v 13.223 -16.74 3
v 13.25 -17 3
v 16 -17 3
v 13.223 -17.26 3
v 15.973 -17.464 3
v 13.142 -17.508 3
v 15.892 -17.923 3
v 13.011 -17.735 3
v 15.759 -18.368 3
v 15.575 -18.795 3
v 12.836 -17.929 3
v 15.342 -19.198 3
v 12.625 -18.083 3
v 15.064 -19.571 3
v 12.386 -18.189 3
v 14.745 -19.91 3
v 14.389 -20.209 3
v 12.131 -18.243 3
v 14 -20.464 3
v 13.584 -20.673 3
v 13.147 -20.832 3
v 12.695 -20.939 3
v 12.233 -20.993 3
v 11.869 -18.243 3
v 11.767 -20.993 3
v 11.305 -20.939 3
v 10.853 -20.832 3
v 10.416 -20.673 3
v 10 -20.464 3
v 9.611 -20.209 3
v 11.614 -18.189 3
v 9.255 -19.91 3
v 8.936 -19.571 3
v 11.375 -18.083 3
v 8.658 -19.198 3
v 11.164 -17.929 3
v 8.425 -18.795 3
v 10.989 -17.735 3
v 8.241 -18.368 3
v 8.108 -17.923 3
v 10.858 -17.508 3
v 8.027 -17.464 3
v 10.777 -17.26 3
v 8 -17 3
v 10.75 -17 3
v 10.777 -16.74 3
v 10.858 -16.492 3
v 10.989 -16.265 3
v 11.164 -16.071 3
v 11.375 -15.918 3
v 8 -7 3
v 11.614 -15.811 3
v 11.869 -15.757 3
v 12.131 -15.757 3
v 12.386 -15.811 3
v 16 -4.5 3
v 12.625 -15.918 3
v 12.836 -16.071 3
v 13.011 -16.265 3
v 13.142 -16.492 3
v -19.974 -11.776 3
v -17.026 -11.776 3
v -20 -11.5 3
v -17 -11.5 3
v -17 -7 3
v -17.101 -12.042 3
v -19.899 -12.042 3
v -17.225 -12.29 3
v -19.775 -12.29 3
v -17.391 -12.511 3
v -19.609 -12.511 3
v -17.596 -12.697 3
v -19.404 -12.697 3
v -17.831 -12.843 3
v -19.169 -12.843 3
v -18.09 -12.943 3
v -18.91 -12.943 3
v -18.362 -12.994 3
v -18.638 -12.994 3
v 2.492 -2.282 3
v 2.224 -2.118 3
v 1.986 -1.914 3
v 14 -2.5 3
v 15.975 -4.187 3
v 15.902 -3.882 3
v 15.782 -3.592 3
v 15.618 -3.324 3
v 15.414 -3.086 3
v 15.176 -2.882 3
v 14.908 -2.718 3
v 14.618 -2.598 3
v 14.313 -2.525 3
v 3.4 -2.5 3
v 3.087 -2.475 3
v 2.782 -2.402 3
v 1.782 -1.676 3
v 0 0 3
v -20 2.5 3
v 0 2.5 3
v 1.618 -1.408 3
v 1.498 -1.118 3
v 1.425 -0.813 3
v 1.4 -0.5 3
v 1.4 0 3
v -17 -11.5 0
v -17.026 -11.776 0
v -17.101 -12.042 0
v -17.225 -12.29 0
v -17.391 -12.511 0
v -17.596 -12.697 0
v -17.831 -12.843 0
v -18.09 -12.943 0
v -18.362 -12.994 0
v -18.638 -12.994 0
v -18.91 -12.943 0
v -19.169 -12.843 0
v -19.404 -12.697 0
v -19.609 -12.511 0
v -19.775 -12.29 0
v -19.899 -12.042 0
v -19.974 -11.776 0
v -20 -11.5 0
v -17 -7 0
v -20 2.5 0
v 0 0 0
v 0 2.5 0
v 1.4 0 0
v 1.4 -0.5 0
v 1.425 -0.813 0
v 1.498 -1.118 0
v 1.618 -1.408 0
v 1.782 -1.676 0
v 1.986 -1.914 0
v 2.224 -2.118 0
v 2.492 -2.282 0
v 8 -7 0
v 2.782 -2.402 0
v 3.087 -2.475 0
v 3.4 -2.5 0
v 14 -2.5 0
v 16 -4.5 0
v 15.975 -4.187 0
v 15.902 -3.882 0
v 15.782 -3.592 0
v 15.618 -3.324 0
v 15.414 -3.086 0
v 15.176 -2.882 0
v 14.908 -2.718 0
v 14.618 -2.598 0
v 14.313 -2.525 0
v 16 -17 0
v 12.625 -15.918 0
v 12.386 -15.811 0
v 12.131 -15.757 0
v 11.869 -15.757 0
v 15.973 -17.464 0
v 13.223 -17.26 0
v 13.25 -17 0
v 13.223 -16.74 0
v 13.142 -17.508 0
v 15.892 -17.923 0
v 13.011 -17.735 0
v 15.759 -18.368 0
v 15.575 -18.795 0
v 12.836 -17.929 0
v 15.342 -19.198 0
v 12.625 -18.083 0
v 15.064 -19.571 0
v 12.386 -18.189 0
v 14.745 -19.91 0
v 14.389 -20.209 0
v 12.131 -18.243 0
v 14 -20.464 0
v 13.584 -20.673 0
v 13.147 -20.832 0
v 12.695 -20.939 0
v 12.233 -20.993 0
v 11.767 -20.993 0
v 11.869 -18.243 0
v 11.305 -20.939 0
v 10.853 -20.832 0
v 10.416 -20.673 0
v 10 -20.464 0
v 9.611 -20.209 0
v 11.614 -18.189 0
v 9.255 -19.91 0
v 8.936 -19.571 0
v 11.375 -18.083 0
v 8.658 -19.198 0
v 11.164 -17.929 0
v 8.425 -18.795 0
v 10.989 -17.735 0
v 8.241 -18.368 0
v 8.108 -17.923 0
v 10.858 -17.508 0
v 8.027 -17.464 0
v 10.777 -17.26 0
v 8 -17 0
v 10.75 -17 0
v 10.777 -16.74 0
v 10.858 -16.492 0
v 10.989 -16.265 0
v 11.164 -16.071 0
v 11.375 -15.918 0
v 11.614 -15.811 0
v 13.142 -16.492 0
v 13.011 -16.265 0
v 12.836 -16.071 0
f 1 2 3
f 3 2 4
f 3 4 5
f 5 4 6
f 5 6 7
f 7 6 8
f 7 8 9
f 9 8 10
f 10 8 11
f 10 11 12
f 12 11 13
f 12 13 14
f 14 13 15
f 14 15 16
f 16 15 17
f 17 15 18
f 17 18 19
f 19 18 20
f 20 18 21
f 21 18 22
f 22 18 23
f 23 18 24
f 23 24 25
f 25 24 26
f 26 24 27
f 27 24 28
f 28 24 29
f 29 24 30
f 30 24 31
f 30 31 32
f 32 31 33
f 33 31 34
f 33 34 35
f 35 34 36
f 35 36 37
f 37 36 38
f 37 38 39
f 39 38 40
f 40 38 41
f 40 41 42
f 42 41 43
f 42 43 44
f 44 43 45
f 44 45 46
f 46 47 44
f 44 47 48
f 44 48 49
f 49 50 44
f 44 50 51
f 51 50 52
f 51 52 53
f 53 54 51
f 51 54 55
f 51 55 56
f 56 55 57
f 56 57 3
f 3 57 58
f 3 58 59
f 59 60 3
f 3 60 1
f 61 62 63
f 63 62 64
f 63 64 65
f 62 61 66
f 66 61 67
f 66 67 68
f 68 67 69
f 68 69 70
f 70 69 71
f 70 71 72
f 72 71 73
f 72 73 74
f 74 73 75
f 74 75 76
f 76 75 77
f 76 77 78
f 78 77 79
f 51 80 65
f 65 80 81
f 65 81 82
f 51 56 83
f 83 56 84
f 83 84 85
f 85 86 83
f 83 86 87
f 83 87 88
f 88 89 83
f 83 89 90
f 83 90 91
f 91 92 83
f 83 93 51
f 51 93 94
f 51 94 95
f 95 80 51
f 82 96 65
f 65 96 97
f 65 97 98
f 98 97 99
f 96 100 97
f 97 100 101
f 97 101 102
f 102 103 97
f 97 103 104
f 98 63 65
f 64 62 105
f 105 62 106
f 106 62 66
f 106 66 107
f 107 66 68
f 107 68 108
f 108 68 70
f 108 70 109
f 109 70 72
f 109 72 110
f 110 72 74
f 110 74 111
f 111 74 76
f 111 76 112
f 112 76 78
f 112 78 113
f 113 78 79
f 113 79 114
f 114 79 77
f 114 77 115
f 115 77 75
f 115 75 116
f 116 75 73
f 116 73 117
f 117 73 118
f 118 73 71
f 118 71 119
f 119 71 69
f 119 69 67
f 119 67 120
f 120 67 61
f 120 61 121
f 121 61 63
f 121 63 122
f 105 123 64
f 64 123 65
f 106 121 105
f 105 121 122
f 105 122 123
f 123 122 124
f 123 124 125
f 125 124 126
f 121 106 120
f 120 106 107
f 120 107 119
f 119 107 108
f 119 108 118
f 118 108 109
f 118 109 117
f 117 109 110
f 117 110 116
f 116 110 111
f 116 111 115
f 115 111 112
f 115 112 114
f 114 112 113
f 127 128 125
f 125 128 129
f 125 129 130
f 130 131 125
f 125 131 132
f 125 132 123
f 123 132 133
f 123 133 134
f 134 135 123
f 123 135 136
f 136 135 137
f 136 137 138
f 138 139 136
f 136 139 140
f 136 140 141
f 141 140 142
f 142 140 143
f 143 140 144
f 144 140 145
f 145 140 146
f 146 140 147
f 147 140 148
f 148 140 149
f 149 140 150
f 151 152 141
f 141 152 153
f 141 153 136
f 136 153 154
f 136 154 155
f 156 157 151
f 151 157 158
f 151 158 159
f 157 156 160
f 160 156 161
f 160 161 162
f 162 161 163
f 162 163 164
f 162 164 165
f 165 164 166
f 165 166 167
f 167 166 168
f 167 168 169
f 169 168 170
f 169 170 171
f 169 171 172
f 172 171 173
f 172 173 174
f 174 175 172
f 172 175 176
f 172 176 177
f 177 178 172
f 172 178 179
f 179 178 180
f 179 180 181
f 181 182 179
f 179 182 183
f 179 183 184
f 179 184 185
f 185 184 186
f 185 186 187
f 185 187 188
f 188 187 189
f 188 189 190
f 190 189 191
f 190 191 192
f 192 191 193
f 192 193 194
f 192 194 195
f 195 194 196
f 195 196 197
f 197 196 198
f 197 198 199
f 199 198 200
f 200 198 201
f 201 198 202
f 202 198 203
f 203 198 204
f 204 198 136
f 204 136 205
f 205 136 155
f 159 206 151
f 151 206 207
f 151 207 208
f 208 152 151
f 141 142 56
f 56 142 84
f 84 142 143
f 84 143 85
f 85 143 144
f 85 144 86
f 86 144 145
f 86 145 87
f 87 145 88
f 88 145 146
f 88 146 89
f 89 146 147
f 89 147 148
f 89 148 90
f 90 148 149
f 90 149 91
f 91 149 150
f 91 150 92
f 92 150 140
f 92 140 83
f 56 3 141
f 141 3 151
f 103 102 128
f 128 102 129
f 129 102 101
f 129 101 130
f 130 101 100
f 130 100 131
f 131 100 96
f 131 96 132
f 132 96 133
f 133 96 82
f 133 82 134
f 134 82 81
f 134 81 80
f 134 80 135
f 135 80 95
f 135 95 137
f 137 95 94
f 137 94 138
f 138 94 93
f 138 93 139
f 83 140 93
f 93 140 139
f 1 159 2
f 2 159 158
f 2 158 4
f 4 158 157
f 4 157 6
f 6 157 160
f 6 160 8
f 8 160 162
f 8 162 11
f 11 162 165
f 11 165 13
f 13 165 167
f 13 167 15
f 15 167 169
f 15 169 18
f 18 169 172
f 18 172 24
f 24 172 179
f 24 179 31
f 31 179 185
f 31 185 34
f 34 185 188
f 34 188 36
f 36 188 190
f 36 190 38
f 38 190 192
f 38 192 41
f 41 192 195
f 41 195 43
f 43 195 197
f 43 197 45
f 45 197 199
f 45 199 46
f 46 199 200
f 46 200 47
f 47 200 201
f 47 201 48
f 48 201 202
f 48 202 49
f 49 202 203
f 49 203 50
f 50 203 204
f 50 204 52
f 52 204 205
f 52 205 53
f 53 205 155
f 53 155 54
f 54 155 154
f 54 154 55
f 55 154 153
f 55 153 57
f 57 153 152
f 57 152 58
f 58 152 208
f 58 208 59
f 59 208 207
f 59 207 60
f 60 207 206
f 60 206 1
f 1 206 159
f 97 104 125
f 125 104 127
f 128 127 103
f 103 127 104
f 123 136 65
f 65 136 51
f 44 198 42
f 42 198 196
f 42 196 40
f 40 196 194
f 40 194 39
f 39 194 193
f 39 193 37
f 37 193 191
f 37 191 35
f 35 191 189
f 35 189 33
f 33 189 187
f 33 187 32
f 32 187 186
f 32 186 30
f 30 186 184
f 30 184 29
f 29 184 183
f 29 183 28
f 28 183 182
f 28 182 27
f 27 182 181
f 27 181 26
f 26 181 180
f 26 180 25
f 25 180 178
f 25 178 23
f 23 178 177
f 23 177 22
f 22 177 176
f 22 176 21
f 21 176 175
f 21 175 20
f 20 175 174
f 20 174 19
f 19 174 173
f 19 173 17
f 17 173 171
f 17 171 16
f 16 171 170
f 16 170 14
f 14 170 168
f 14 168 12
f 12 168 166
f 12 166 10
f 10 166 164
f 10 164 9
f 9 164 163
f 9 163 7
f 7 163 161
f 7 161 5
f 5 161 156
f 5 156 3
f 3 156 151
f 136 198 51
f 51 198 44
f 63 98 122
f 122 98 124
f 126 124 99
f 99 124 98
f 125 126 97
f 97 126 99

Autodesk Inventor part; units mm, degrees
ref_plane "YZ Plane" through (0, 0, 0) normal (1, 0, 0) x (0, 1, 0)
ref_plane "XZ Plane" through (0, 0, 0) normal (0, 1, 0) x (-1, 0, 0)
ref_plane "XY Plane" through (0, 0, 0) normal (0, 0, 1) x (1, 0, 0)
sketch "Эскиз1" plane through (0, 0, 0) normal (0, 0, 1) x (1, 0, 0)
  line L0 (-5.9183, 2.5) -> (-5.9183, 5) projected
  line L1 (0, 0) -> (0, 2.5)
  line L2 (0, 2.5) -> (-20, 2.5)
  line L3 (-20, 0) -> (-20, 2.5)
  line L4 (0, 0) -> (1.4, 0)
  line L5 (1.4, 0) -> (1.4, -3.5)
  line L6 (-20, -13) -> (-17, -13)
  line L7 (-17, -7) -> (8, -7)
  line L8 (8, -13) -> (16, -13)
  line L9 (16, -3.5) -> (1.4, -3.5)
  line L10 (8, -13) -> (8, -17)
  line L11 (16, -17) -> (16, -13)
  arc A0 (8, -17) -> (16, -17) centre (12, -17) ccw
  circle A1 centre (12, -17) radius 1.25
  line L12 (16, -13) -> (16, -3.5)
  line L13 (8, -7) -> (8, -13)
  line L14 (-17, -7) -> (-17, -13)
  line L15 (-20, -13) -> (-20, 0)
  spline S0 degree 3 poles (-5.9183, 5) (-5.9183, 4.7015) (-5.9968, 4.352) (-6.2503, 3.7878) (-6.4767, 3.4776) (-6.9505, 3.0315) (-7.2856, 2.8188) (-7.8976, 2.5753) (-8.2838, 2.5) (-8.6117, 2.5) knots 0.75861 0.75861 0.75861 0.75861 0.84817 0.84817 0.944164 0.944164 1.043394 1.043394 1.141763 1.141763 1.141763 1.141763 projected
  line L16 (-5.9183, 2.5) -> (-8.6117, 2.5) projected
  dimension "d7" = 2.5
extrude "Выдавливание2" add sketch "Эскиз1" along normal blind 3 contours L2 L1 L4 L5 L9 L12 L8 L13 L7 L14 L6 L15 L3 | L11 A0 L10 L8
sketch "Эскиз2" plane through (1.4, -3.5, 0) normal (0, 1, 0) x (1, 0, 0)
  line L0 (14.6, 0) -> (0, 0) projected
  line L1 (0, 0) -> (0, -3) projected
  line L2 (14.6, -3) -> (0, -3) projected
  line L3 (14.6, 0) -> (14.6, -3) projected
  point P0 (-1.4, 0)
extrude "Выдавливание3" add sketch "Эскиз2" along normal blind 1
fillet "Сопряжение3" radius 2 2 edges at (1.4, -2.5, 1.5) (16, -2.5, 1.5)
fillet "Сопряжение4" radius 1.5 2 edges at (-17, -13, 1.5) (-20, -13, 1.5)
properties part number "RackeSecondary"
